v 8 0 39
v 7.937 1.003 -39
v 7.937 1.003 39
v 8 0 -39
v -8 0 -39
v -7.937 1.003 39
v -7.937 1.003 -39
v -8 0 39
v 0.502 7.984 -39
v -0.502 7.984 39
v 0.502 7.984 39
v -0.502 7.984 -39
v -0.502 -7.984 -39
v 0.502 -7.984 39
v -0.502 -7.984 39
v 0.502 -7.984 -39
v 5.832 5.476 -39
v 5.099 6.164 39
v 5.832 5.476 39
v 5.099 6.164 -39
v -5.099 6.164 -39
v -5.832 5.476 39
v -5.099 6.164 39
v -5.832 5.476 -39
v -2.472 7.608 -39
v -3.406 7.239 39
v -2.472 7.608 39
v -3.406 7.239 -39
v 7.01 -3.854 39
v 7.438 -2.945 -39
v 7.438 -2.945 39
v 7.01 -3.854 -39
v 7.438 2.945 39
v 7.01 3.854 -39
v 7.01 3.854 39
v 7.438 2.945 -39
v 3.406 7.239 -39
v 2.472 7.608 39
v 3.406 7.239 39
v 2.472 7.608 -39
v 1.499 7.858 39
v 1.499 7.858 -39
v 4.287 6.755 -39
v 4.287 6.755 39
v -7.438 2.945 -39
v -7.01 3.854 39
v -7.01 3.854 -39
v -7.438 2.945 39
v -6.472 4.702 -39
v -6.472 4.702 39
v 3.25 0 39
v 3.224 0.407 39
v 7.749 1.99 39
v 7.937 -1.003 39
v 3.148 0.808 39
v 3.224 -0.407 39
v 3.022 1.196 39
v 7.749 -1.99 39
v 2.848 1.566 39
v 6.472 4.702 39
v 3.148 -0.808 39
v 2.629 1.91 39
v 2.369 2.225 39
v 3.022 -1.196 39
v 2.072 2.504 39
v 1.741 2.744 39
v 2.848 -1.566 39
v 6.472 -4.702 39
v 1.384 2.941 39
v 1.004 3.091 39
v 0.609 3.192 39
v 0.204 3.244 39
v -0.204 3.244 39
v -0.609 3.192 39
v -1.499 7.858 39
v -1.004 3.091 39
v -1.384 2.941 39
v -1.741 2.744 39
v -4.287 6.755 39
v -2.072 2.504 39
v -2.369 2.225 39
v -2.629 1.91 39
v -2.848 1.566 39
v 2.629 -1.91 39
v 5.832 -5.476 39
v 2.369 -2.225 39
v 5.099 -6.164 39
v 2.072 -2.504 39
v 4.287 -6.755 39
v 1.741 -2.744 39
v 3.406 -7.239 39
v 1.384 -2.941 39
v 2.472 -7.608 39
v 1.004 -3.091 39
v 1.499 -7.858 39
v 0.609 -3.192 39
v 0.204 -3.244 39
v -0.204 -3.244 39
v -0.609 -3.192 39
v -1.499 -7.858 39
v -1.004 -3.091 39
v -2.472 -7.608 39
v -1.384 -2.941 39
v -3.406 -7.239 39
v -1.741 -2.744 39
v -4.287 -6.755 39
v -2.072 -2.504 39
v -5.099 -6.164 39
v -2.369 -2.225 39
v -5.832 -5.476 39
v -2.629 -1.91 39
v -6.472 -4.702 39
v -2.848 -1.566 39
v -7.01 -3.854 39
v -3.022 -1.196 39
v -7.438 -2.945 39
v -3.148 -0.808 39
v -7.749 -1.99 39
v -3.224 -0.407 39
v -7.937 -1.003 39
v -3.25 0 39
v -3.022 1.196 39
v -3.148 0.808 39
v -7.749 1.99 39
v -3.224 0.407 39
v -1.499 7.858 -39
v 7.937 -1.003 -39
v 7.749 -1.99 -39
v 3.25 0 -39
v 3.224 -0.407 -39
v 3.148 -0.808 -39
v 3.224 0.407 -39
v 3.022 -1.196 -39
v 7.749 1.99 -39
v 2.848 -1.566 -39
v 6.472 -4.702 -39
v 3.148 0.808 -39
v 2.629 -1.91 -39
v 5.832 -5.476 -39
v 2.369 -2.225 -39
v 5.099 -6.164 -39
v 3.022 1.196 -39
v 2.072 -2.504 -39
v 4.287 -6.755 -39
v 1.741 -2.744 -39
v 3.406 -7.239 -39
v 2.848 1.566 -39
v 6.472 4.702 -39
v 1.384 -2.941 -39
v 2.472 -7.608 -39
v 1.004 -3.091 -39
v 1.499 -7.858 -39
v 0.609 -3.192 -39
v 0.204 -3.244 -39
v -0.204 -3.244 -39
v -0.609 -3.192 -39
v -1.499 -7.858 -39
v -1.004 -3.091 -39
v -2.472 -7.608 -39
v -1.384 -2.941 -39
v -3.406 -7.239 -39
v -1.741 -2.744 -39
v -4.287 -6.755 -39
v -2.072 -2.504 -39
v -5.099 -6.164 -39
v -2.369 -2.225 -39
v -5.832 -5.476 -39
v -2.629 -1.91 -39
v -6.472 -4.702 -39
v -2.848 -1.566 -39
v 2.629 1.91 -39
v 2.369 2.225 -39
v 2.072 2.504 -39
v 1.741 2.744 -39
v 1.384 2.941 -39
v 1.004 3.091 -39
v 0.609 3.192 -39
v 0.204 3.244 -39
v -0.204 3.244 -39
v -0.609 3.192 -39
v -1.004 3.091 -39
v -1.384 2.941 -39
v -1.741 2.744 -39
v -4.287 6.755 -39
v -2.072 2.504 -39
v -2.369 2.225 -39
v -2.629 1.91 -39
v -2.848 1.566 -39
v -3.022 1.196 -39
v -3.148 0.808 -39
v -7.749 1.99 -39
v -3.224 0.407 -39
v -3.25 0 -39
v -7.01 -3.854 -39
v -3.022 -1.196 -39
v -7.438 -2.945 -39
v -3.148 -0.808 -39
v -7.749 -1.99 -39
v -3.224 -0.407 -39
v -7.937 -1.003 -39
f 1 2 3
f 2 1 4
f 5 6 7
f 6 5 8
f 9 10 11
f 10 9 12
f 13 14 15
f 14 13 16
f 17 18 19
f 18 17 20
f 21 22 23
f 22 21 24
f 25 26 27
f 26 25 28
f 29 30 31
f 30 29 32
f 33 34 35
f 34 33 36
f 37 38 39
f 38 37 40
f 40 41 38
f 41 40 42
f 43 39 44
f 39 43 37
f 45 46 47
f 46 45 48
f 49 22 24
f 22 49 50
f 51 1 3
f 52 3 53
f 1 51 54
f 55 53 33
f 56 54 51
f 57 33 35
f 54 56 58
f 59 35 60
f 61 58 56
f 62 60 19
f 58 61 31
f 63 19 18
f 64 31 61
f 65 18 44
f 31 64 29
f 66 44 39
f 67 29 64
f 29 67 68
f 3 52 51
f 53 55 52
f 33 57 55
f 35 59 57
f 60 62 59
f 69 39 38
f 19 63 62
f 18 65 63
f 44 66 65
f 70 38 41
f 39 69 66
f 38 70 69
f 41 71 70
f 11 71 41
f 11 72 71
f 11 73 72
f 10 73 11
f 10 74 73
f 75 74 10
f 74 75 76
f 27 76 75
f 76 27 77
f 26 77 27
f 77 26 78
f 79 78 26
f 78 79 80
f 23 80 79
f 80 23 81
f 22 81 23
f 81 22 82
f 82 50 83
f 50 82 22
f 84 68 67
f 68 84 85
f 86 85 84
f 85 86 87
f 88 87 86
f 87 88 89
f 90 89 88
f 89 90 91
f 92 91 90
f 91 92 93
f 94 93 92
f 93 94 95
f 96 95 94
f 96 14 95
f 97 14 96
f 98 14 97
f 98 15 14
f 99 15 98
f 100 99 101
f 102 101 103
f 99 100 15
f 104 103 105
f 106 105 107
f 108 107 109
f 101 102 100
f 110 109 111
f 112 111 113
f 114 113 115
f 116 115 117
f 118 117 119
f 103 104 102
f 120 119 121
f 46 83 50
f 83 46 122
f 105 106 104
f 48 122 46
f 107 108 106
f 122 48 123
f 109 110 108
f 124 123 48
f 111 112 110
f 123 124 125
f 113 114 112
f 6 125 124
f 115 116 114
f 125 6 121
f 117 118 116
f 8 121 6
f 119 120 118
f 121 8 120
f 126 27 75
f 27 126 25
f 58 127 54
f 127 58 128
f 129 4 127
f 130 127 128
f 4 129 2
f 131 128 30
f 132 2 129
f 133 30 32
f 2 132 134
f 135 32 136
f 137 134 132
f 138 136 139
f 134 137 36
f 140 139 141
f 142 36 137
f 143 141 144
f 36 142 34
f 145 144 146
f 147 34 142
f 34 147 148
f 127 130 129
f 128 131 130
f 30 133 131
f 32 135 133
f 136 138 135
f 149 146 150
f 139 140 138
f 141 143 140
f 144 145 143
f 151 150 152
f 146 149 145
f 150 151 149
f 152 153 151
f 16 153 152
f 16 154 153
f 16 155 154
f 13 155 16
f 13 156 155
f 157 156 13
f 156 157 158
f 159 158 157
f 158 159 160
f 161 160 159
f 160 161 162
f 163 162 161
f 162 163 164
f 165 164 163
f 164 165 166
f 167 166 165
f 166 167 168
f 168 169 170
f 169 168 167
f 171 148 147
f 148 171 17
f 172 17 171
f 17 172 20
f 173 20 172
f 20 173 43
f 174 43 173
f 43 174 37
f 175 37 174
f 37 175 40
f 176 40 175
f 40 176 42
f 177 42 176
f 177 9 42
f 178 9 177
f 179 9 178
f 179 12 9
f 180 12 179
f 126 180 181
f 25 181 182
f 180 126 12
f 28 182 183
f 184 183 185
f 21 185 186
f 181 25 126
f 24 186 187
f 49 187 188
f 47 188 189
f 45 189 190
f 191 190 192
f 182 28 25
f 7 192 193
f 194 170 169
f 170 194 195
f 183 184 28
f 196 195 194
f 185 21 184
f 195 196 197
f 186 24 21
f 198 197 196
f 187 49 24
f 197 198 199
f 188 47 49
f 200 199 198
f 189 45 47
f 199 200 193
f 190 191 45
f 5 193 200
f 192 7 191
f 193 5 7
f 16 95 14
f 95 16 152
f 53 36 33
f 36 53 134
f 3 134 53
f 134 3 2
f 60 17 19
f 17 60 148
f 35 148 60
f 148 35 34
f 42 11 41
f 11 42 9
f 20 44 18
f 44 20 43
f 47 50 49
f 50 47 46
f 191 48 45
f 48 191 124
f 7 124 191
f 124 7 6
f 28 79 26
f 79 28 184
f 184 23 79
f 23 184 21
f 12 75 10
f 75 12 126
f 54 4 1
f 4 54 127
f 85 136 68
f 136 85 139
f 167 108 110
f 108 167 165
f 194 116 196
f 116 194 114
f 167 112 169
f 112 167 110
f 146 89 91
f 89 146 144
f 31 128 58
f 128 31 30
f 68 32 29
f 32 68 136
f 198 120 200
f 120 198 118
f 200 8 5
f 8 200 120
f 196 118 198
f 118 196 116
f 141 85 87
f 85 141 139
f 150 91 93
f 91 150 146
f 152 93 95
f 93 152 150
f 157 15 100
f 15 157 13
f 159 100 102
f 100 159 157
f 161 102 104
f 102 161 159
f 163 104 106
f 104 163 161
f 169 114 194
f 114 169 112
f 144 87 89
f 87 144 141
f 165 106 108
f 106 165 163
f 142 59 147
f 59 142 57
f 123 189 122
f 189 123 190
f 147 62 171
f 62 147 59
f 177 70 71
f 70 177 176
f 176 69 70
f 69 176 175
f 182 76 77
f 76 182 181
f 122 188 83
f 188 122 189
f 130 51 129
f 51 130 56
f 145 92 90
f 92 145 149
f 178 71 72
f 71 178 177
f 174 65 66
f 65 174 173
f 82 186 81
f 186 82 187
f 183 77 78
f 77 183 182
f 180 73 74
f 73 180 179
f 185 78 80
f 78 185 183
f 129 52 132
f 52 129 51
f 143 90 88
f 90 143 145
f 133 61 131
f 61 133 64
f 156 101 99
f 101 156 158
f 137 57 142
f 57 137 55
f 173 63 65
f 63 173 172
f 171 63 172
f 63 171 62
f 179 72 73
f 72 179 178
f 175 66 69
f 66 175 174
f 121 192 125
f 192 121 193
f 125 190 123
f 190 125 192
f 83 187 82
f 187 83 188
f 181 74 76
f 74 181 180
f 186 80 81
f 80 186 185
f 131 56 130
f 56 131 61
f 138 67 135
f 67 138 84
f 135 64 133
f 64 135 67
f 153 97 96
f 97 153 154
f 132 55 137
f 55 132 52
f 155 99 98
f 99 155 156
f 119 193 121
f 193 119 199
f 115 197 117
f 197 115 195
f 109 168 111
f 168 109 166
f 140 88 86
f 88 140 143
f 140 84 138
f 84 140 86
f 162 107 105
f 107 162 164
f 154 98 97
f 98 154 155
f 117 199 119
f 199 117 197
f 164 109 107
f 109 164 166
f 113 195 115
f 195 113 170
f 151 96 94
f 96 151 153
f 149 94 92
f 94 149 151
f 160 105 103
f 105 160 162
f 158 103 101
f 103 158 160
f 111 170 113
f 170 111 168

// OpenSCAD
$fn = 50;


difference() {
	union() {
		translate(v = [0, 0, -39.0000000000]) {
			cylinder(h = 78, r = 8.0000000000);
		}
	}
	union() {
		translate(v = [0, 0, -100.0000000000]) {
			cylinder(h = 200, r = 3.2500000000);
		}
	}
}
